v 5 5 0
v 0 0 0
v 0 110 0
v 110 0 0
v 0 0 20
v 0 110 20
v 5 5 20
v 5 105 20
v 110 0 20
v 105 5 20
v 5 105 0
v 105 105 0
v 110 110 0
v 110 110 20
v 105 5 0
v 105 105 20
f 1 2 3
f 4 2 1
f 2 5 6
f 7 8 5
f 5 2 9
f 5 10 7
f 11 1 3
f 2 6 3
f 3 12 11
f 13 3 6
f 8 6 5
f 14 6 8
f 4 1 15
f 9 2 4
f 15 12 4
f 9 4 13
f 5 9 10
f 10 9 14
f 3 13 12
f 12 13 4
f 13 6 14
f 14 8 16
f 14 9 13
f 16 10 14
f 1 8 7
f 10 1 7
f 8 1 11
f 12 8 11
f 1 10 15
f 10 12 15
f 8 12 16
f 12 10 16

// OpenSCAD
// Frame for city model
// Outer size: 110.0mm x 110.0mm x 20mm
// Inner size: 100.0mm x 100.0mm x 20mm
// Frame width: 5mm

difference() {
    // Outer block (10mm larger than main model)
    cube([110.0, 110.0, 20]);
    
    // Inner cutout (sized to match main model exactly)
    translate([5, 5, 0])
        cube([100.0, 100.0, 20]);
}
